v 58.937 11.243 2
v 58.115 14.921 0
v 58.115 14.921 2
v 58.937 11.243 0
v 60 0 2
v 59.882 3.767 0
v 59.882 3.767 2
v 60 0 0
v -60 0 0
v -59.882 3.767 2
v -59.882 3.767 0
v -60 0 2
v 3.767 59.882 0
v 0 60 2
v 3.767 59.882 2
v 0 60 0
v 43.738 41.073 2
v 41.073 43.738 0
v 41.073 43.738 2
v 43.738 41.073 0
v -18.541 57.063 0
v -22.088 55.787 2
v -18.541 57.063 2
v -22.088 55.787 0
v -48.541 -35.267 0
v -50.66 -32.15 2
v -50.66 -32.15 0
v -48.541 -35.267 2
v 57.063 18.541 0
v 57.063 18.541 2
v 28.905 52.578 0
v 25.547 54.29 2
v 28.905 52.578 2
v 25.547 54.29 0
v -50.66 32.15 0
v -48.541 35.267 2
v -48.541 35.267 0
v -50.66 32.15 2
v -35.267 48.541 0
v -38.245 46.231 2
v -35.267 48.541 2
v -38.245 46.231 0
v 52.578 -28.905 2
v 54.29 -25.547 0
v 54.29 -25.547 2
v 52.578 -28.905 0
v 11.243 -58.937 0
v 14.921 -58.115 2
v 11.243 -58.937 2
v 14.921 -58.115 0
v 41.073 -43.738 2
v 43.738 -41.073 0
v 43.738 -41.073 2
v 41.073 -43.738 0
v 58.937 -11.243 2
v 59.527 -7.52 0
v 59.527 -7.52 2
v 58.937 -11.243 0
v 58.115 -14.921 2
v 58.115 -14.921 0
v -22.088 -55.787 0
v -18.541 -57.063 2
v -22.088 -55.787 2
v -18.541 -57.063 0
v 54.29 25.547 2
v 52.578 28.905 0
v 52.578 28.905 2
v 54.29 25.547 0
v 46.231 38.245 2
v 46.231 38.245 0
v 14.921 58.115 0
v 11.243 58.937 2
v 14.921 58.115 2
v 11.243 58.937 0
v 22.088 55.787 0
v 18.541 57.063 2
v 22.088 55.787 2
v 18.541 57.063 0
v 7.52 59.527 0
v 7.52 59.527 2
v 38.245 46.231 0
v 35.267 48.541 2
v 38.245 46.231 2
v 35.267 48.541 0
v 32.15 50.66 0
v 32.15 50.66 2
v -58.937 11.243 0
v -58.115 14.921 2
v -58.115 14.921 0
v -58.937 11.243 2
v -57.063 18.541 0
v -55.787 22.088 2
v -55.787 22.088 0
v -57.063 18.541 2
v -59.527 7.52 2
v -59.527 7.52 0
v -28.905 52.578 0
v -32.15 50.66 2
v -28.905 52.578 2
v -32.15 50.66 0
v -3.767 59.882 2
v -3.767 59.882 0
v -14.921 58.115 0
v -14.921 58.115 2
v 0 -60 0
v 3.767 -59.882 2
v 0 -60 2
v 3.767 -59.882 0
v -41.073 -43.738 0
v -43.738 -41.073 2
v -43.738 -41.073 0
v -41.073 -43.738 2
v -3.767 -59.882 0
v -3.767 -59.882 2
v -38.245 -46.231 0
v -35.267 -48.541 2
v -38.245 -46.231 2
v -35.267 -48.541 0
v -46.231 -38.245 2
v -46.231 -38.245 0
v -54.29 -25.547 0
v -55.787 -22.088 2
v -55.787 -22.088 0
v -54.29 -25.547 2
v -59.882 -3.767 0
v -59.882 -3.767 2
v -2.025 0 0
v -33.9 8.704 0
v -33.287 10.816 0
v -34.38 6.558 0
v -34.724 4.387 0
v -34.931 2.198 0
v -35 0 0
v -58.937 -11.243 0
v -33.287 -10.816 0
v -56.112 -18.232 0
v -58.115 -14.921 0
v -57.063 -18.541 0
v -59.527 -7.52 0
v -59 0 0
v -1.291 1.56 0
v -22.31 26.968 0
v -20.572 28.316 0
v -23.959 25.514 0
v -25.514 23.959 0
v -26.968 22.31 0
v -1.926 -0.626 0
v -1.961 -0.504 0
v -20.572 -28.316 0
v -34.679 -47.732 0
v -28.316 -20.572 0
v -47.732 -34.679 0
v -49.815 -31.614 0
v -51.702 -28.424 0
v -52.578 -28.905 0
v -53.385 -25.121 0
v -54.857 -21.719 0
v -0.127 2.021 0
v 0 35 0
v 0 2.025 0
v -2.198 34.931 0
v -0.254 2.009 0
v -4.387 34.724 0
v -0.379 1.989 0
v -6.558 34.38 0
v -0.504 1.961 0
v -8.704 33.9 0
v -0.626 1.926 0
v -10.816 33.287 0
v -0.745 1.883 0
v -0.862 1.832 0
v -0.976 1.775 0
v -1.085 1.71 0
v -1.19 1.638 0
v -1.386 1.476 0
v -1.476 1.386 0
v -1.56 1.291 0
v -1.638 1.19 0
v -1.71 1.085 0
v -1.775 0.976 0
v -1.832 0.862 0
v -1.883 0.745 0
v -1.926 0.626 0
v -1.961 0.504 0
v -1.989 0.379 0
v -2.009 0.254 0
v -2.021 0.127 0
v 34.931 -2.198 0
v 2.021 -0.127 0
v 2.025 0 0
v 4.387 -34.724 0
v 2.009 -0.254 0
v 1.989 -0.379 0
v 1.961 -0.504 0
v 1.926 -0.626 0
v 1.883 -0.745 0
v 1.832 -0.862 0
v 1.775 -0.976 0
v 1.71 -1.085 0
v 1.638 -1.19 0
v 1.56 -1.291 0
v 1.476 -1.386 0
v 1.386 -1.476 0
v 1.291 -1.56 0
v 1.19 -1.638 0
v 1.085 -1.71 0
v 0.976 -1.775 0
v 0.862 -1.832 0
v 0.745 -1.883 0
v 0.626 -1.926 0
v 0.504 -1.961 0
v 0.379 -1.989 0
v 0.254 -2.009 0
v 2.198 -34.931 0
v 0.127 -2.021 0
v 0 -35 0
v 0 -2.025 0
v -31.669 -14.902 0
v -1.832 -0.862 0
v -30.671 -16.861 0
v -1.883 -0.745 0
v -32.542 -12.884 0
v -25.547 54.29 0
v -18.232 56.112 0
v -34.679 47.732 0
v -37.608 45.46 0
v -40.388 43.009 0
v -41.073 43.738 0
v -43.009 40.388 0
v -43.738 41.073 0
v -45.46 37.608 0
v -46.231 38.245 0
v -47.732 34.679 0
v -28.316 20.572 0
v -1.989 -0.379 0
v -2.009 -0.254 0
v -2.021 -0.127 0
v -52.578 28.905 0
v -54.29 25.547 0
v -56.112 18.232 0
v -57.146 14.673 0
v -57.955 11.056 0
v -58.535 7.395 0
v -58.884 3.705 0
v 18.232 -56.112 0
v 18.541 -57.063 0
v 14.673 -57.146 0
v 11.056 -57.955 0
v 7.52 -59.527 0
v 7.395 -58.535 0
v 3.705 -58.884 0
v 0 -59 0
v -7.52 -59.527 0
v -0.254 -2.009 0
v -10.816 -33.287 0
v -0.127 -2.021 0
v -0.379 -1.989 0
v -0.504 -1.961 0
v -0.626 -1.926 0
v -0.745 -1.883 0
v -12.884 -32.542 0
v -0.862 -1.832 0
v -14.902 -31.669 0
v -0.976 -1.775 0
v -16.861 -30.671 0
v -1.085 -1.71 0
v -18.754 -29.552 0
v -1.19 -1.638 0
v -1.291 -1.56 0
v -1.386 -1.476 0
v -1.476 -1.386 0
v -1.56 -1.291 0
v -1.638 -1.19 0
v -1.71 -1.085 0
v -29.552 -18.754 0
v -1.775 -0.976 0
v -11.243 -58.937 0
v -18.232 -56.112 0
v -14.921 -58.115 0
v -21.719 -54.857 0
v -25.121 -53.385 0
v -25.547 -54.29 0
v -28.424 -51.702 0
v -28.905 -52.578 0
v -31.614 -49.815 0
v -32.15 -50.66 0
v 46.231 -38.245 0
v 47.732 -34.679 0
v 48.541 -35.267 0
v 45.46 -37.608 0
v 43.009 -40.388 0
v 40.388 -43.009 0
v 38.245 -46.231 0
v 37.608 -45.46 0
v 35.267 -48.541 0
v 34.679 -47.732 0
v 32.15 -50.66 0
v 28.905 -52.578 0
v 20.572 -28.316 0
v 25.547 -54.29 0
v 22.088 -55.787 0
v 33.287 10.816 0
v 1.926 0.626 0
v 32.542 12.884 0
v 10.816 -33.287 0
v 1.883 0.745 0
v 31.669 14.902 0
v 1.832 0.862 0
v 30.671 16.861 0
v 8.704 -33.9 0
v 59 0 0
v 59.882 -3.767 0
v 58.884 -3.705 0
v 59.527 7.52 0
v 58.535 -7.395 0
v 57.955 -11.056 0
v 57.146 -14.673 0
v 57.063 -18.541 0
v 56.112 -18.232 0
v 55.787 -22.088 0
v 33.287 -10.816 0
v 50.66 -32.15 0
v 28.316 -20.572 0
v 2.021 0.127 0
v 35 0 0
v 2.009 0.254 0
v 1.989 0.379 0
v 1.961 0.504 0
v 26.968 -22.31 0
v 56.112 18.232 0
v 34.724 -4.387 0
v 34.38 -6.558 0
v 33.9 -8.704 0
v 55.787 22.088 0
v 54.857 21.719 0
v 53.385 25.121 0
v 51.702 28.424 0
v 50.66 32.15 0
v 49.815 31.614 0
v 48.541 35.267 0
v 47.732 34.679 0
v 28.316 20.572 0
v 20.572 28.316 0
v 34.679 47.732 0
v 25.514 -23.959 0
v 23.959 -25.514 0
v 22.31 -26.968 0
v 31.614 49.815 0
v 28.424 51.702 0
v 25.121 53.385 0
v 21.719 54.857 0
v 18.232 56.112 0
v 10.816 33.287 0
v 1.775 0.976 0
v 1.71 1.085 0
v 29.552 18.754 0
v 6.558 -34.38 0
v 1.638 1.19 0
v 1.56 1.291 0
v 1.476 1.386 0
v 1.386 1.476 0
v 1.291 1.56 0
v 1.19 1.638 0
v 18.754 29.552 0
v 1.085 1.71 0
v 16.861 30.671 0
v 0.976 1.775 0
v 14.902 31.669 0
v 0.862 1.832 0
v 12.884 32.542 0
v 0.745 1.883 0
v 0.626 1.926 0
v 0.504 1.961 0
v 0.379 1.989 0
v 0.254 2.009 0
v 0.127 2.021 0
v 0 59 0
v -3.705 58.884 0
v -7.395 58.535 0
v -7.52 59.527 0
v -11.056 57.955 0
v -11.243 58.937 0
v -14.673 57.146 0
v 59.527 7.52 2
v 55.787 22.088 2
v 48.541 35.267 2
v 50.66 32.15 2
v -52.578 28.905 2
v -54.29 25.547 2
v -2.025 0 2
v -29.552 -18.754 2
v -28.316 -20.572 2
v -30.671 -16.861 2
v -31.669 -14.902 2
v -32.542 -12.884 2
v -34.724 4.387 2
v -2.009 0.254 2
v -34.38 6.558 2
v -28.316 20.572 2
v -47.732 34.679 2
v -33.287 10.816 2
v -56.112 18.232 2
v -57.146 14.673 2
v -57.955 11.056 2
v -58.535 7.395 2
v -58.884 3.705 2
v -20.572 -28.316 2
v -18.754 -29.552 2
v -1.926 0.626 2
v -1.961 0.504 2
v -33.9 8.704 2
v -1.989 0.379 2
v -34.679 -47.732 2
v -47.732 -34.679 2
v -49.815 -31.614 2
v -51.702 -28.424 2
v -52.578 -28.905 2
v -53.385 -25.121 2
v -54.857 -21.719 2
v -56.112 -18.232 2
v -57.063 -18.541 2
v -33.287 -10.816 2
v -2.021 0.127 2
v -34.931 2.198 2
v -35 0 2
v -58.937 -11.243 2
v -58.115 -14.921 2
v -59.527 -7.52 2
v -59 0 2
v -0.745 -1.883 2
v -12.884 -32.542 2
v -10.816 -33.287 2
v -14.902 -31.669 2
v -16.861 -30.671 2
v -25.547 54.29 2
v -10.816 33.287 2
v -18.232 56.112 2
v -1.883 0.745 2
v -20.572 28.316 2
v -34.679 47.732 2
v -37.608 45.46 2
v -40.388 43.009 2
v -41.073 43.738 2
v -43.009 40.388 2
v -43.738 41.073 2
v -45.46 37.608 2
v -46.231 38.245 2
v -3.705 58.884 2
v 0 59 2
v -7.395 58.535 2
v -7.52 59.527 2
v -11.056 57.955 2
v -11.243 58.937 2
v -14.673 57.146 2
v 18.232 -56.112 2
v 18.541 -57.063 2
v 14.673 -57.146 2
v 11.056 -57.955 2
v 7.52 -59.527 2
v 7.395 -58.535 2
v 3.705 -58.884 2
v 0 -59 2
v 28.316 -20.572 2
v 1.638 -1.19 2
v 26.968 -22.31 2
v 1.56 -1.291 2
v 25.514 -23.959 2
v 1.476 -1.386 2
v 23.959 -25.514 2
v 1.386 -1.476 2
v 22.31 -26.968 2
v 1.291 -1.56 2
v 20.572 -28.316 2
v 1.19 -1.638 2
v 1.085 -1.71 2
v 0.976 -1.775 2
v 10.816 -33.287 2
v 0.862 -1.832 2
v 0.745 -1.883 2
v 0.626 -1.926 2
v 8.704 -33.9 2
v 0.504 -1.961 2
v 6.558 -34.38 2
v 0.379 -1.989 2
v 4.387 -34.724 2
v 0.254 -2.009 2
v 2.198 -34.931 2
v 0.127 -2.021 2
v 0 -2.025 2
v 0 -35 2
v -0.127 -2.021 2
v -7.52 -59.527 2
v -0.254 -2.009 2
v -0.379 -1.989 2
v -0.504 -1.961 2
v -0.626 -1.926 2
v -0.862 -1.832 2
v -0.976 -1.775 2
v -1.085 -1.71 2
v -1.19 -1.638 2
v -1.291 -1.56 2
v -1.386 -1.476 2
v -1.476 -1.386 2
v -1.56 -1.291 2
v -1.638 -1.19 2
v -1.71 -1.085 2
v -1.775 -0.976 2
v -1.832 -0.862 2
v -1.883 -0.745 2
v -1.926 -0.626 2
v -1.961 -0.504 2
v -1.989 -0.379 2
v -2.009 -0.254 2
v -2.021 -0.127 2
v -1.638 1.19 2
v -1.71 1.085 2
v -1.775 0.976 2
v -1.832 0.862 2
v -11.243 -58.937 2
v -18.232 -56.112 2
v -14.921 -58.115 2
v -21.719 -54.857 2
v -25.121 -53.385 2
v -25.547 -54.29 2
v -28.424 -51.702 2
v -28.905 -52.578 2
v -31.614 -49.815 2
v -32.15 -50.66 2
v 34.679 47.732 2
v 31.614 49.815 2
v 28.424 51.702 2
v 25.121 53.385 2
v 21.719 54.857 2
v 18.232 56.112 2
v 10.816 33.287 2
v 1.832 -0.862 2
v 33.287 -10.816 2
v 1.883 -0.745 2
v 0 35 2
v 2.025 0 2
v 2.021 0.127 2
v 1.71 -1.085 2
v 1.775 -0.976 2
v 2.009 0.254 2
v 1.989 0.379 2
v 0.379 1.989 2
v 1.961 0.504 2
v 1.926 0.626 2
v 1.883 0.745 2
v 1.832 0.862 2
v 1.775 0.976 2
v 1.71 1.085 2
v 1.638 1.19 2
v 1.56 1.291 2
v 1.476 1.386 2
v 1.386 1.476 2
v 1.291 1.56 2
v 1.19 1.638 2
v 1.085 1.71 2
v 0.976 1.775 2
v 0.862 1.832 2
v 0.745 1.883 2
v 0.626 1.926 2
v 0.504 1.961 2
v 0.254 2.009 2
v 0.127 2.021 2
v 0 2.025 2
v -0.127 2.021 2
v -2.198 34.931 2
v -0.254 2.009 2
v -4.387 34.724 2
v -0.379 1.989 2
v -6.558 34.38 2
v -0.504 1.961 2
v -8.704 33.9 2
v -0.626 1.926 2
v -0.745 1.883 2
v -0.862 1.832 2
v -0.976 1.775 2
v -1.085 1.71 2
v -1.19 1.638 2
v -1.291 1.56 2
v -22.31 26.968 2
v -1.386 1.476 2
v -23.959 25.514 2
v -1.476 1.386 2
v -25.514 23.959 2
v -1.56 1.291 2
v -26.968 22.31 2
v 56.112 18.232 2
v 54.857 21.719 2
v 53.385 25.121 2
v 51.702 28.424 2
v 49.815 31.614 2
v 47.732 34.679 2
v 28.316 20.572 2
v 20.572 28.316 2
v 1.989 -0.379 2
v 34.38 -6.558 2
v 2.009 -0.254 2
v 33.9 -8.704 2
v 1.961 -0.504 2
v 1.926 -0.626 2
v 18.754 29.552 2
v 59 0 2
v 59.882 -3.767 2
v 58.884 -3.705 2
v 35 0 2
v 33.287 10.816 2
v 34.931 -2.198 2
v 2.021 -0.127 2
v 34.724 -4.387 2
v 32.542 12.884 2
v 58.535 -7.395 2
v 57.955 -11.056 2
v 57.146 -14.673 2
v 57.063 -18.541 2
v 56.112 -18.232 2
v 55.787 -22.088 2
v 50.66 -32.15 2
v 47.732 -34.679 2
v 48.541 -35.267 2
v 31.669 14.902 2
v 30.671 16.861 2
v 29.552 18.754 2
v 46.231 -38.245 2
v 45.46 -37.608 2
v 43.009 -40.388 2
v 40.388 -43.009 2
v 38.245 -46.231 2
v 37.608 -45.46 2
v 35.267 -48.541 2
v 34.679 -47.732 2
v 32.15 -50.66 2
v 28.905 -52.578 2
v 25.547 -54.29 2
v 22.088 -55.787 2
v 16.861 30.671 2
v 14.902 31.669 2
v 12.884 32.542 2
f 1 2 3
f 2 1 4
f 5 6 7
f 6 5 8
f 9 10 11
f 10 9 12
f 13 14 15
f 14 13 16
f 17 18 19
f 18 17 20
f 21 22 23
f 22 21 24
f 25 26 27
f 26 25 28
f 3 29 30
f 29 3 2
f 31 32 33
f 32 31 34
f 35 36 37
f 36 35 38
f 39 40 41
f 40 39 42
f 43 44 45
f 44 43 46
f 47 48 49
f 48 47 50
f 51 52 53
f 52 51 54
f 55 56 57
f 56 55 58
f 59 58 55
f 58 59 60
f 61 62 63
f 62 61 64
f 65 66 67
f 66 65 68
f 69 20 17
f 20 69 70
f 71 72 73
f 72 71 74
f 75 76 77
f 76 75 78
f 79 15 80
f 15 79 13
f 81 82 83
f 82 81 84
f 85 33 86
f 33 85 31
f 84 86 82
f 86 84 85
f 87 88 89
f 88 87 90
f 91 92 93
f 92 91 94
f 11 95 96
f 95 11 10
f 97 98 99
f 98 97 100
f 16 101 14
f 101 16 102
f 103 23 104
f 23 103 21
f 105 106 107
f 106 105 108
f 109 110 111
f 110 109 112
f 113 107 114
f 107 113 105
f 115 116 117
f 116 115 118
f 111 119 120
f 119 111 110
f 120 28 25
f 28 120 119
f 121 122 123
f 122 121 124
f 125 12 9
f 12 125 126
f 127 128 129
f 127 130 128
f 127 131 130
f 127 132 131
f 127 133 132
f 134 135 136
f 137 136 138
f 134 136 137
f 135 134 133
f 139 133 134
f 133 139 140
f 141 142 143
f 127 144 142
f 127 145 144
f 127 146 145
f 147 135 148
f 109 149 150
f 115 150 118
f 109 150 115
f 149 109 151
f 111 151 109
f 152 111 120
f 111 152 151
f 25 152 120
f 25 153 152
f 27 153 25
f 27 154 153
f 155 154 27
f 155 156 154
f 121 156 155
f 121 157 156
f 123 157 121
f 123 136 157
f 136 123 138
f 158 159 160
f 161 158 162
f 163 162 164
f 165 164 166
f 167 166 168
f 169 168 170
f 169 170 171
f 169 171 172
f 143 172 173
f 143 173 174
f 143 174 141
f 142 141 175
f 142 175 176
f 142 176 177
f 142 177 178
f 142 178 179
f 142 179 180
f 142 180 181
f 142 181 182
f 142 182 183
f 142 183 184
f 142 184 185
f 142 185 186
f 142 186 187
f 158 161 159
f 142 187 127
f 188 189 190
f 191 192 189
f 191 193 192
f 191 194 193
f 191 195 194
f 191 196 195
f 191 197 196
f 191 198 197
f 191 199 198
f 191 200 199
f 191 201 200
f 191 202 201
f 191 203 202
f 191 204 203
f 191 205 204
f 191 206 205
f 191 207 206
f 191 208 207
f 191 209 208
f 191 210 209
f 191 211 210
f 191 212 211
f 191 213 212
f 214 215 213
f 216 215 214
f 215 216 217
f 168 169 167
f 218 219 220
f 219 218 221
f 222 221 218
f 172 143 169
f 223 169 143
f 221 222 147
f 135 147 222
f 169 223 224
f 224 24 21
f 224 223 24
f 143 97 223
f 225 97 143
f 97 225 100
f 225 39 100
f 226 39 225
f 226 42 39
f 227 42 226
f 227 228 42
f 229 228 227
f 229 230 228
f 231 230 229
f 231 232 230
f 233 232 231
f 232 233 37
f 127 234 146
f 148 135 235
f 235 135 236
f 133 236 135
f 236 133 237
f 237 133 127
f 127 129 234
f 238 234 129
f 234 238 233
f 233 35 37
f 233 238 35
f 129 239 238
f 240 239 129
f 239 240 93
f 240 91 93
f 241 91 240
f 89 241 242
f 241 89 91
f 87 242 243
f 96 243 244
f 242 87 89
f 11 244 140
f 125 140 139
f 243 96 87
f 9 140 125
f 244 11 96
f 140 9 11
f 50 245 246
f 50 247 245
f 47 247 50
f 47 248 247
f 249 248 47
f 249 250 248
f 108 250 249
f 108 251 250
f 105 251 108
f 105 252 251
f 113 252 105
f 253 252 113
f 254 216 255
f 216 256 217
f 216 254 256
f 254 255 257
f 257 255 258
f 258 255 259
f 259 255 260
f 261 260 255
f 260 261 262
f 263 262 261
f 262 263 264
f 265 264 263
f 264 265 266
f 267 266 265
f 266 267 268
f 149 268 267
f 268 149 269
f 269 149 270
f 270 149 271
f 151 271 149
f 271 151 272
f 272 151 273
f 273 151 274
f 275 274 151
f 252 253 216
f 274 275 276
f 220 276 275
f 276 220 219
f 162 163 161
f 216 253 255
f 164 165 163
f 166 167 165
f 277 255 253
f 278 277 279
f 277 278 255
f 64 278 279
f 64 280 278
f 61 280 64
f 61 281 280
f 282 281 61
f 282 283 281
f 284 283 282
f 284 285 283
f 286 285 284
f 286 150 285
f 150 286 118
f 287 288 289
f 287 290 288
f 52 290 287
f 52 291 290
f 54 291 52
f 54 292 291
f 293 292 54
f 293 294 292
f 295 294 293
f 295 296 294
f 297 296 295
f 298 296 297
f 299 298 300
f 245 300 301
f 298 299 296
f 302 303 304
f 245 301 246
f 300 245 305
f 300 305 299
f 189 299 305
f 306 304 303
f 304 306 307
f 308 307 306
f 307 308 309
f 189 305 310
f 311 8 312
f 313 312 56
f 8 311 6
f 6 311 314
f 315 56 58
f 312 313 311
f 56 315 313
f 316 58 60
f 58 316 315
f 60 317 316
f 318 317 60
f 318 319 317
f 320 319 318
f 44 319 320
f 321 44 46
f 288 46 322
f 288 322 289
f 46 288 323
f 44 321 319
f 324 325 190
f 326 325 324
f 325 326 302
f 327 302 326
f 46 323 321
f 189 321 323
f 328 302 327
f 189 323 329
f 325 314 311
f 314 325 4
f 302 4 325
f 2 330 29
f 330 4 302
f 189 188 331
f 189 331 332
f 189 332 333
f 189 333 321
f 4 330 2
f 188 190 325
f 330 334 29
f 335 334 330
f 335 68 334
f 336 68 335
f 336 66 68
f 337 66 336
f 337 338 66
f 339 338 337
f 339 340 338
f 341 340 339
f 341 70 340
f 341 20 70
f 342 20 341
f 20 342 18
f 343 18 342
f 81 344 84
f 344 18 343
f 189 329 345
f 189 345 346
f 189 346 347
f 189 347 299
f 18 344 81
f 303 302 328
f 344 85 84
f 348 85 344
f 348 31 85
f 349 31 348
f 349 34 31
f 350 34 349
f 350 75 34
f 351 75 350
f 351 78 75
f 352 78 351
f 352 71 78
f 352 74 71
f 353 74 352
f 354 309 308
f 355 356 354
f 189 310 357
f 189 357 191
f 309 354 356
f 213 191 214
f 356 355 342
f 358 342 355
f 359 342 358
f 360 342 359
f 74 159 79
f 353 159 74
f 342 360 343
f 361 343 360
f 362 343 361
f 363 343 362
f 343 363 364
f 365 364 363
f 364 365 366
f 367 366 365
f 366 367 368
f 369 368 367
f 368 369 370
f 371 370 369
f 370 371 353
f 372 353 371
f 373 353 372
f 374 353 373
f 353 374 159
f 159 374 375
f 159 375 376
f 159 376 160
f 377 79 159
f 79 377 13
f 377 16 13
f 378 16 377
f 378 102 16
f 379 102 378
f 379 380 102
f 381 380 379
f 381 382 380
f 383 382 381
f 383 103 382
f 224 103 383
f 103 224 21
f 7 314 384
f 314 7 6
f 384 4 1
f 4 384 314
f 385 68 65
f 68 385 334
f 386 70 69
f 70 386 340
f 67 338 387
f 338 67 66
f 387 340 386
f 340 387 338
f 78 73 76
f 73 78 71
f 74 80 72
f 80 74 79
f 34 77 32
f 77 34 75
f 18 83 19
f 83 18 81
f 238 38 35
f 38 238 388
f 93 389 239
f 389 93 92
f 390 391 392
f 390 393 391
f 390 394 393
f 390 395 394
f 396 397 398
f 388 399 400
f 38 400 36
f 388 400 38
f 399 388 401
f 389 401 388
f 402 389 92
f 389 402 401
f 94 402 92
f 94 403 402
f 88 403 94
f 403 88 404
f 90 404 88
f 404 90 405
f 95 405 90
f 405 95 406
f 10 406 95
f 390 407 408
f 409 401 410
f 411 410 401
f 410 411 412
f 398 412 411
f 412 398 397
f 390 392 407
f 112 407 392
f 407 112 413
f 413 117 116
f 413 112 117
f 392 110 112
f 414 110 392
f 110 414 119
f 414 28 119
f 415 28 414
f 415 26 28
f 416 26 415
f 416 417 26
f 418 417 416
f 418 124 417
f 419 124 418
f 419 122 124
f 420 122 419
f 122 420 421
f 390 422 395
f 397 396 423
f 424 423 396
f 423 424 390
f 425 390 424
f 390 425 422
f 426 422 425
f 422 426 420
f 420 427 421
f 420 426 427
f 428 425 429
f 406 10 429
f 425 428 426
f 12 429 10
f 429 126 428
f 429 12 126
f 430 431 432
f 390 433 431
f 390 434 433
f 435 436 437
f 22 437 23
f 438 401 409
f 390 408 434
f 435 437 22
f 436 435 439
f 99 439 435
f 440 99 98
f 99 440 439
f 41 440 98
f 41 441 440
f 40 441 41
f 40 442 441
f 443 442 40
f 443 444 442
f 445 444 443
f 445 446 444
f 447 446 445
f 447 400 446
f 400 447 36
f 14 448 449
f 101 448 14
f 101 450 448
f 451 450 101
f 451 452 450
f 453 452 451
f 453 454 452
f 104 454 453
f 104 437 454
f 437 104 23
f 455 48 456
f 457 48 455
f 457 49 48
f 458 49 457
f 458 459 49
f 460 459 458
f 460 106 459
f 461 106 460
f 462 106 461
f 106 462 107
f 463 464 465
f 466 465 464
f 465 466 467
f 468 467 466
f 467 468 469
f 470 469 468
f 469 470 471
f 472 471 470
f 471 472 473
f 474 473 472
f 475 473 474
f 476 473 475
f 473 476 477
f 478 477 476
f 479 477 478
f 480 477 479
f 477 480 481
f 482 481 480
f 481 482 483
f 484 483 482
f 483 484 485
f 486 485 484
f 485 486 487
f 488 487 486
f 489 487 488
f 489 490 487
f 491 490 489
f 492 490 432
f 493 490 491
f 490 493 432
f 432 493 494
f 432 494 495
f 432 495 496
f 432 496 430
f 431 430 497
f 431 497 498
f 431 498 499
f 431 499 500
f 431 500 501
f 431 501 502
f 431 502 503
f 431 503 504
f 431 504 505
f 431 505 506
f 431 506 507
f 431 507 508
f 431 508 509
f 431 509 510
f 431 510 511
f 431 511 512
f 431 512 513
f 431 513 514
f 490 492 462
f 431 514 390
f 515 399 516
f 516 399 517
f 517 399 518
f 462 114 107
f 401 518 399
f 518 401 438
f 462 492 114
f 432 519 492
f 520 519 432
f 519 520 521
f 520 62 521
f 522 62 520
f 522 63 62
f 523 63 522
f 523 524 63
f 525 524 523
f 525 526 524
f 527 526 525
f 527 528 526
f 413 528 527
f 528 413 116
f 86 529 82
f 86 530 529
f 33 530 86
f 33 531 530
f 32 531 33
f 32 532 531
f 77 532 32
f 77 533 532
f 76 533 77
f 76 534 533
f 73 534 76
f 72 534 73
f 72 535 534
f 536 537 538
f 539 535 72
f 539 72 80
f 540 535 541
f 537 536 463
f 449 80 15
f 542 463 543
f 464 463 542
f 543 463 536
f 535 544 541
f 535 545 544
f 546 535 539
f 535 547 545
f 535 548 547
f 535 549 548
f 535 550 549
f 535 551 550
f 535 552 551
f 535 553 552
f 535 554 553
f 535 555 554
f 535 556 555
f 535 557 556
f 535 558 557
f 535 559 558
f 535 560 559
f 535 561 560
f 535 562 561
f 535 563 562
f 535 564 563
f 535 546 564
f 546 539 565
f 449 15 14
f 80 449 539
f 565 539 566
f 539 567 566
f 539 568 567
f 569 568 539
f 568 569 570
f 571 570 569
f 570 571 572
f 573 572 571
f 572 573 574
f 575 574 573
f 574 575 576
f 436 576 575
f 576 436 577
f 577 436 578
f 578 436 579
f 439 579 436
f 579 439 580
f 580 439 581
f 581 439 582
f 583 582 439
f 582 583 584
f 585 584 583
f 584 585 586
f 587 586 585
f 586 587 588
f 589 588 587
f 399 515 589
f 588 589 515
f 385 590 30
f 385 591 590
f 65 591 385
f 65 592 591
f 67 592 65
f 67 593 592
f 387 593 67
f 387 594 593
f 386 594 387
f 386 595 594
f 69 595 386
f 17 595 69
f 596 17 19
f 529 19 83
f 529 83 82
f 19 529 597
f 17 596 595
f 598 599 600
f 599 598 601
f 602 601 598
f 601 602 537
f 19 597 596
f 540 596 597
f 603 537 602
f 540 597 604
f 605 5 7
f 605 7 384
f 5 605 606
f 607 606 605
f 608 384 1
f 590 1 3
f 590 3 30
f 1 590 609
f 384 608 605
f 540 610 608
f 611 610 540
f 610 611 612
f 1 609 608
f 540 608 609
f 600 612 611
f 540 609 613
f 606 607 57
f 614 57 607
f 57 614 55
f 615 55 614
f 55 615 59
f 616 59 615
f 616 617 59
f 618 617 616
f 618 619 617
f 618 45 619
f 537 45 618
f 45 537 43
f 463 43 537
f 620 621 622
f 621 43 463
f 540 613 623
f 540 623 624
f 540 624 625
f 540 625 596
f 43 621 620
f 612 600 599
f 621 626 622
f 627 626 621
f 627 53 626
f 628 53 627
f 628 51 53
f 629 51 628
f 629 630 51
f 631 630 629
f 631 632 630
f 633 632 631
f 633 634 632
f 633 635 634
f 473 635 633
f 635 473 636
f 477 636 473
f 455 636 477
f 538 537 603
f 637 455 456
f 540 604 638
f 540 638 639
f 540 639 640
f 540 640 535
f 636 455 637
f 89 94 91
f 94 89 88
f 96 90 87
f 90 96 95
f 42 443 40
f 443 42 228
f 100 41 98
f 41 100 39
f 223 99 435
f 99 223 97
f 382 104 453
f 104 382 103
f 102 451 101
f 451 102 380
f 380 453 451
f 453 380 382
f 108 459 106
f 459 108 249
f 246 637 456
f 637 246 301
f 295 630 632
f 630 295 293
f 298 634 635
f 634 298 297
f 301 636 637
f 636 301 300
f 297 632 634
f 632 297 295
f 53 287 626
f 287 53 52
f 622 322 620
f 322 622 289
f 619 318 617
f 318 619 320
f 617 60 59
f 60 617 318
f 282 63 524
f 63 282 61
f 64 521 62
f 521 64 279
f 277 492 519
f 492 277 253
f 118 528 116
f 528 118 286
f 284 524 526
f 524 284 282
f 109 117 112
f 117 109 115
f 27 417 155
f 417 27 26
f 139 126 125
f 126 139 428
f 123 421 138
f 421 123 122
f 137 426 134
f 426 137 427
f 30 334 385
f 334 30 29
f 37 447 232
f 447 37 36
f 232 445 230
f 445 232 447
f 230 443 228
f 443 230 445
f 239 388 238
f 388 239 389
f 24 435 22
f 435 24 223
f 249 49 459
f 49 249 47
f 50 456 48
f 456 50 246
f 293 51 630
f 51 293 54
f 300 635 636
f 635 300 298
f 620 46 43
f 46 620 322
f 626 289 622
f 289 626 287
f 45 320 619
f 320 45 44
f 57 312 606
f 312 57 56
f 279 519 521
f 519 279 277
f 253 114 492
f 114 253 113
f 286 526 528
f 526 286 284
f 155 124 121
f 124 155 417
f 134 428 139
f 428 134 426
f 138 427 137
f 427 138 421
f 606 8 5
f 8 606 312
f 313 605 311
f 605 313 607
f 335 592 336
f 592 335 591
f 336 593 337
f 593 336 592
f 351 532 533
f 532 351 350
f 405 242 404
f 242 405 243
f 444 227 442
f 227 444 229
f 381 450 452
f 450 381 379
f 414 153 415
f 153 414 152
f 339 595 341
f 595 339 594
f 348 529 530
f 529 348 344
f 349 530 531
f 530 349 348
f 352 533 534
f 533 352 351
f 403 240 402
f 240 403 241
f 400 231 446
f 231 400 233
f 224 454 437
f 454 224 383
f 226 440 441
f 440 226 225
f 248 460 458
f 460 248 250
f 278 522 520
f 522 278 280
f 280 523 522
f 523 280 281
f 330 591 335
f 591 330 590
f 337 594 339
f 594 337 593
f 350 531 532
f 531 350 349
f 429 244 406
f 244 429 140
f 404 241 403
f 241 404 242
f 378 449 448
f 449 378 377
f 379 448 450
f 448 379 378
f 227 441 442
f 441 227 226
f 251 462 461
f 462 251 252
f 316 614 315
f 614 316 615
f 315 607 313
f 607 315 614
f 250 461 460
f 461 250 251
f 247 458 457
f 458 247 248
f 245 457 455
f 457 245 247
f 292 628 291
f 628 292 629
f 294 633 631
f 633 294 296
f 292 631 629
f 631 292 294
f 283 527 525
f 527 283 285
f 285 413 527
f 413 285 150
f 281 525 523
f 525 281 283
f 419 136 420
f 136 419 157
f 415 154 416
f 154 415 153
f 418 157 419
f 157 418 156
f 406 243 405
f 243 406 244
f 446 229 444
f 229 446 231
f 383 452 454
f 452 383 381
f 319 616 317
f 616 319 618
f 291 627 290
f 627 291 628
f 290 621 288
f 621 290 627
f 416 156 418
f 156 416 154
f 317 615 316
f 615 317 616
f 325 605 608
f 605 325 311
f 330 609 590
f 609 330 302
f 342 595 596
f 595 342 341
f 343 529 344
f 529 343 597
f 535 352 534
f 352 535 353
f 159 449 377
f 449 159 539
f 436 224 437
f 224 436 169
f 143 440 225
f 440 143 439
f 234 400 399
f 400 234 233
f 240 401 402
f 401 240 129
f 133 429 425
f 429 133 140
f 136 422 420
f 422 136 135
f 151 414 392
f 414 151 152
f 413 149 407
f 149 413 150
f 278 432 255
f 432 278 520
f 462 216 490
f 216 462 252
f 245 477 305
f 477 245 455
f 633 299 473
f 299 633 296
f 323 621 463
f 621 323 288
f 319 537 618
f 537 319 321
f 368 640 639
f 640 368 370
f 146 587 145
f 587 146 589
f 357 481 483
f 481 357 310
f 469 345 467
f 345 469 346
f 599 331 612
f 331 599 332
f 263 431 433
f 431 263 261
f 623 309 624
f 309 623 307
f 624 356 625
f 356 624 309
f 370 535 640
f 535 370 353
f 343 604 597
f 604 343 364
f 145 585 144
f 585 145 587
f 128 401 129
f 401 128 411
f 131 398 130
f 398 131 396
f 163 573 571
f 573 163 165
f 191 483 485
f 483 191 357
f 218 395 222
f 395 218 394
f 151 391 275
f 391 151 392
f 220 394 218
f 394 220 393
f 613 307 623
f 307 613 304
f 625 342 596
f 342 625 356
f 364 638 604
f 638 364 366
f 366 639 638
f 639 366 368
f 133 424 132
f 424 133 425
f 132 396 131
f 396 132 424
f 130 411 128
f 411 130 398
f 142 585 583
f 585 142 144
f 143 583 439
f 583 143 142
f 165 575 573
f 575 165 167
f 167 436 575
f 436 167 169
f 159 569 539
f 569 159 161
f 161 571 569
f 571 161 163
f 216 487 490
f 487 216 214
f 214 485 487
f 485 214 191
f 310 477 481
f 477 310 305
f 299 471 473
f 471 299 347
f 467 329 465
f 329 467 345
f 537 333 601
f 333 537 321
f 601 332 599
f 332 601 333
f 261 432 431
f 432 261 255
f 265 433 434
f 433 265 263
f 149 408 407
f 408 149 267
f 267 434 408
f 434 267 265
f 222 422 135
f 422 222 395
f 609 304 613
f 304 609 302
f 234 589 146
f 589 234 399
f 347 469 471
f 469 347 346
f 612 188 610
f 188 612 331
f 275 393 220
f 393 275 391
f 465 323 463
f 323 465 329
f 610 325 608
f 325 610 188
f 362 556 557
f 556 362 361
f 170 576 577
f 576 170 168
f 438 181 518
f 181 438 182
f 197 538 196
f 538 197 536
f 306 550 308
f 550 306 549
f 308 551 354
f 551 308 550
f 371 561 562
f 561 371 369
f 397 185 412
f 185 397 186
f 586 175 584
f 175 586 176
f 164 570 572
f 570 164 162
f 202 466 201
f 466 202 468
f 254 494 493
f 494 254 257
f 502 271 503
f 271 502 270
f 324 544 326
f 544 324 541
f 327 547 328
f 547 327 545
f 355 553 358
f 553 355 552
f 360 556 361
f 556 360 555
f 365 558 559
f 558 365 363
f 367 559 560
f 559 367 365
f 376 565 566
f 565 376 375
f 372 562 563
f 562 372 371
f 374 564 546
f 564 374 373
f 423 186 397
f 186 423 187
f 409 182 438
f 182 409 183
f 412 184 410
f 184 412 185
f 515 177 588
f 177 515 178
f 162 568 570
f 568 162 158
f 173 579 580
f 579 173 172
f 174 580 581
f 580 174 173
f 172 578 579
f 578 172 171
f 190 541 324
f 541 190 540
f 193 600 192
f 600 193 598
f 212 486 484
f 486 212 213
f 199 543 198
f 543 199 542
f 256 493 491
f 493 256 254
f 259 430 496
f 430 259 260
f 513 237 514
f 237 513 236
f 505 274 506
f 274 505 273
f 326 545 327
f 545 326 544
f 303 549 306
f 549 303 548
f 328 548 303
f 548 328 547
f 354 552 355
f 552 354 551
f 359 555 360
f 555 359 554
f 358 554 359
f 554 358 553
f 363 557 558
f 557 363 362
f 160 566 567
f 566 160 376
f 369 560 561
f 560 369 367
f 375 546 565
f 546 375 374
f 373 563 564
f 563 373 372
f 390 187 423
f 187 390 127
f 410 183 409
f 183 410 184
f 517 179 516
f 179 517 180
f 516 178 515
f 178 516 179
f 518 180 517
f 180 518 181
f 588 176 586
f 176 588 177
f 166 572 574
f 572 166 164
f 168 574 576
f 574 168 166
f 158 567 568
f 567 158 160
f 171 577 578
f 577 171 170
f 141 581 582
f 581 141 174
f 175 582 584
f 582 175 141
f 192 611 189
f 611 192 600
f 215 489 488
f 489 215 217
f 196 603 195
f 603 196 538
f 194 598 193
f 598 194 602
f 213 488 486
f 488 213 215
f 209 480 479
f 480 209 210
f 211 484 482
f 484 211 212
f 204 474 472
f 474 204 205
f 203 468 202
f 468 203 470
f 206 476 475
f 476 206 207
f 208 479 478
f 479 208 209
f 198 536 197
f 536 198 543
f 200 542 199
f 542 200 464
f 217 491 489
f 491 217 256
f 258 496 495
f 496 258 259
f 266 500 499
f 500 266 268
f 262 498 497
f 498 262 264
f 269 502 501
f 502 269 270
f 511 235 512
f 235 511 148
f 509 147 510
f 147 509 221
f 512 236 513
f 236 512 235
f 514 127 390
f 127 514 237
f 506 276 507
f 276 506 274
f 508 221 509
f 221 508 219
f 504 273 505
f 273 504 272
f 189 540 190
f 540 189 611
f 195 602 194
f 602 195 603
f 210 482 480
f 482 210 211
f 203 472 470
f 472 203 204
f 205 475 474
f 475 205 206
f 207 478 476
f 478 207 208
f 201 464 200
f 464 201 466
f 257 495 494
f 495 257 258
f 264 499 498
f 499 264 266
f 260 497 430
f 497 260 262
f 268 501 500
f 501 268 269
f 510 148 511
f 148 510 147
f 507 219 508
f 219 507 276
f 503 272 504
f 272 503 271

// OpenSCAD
// file: ../library_deh/mag_mount.scad
/* mag_mount.scad

 * ****** Stud magnets ******
16 mm 
http://www.kjmagnetics.com/proddetail.asp?prod=MM-C-16
    Dimensions:
        D=16mm (0.63")
        M=4mm (0.16") (M4 Coarse Male threaded stud)
        H=13mm (0.51")
        h=5mm (0.20")
    Material: NdFeB, Grade N38
    Plating/Coating: Ni-Cu-Ni (Nickel)
    Magnetization Direction: Axial (Poles on Flat Ends)
    Weight: 0.26 oz. (7.37 g)
    Pull Force: 12.1 lbs
    Surface Field: N/A
    Brmax: 12,600 Gauss
    BHmax: 38 MGOe
   $2.49
*/
// Measured dimensions
 mag_thick = 4.82;	    // Magnet thickness (base to shell top)
 mag_shell_dia = 16.0;	    // Magnet shell OD
 mag_shell_flat_dia = 11;   // Dia of flat of magent
 mag_stud_dia = 2.8;        // Dia of mounting magnet studs (4-40)
 mag_stud_len = 8.0;        // Height of stud from magnet back
 mag_washer_thick = 1.1;    // Thickness of washer
 mag_nut_thick = 2.4;       // Stud nut (M3) thickness
 mag_nut_hex_flat = 5.41;   // Nut across flats
 mag_nut_hex_peak = 6.20;   // Nut across peaks (also dia of nut)
 mag_washer_dia = 7.1; // 9.5;      // Diameter of washer for magnet stud
 mag_washer_dia_extra = 2;  // Washer slop

/*
http://www.kjmagnetics.com/proddetail.asp?prod=MM-C-20


    Dimensions:
        D=20mm (0.79")
        M=4mm (0.16") (M4 Coarse Male threaded stud)
        H=15mm (0.59")
        h=7mm (0.28")
    Material: NdFeB, Grade N38
    Plating/Coating: Ni-Cu-Ni (Nickel)
    Magnetization Direction: Axial (Poles on Flat Ends)
    Weight: 0.53 oz. (15.0 g)
    Pull Force: 28.7 lbs
    Surface Field: N/A
    Brmax: 12,600 Gauss
    BHmax: 38 MGOe

  $3.14
*/
 mag20_thick = 7.11;	    // Magnet thickness (base to shell top)
 mag20_shell_dia = 20.2;    // Magnet shell OD
 mag20_stud_dia = 3.75;     // Dia of mounting magnet stud at base
 mag20_stud_len = 7.75;       // Height of stud from magnet back
 mag20_washer_thick = 0.85;    // Thickness of washer
 mag20_nut_thick = 2.93;       // Nut for stud thickness
 mag20_washer_dia = 8.68;      // Diameter of washer for magnet stud
 mag20_washer_dia_extra = 2;  // Washer slop

/*
http://www.kjmagnetics.com/proddetail.asp?prod=MM-C-25

    Dimensions:
        D=25mm (0.98")
        M=5mm (0.20") (M5 Coarse Male threaded stud)
        H=17mm (0.67")
        h=8mm (0.32")
    Material: NdFeB, Grade N38
    Plating/Coating: Ni-Cu-Ni (Nickel)
    Magnetization Direction: Axial (Poles on Flat Ends)
    Weight: 0.92 oz. (26.1 g)
    Pull Force: 48.5 lbs
    Surface Field: N/A
    Brmax: 12,600 Gauss
    BHmax: 38 MGOe
  $4.20
*/
// $$$$$ INCOMPLETE $$$$$$
 mag25_thick = 4.82;	    // Magnet thickness (base to shell top)
 mag25_shell_dia = 16.0;	    // Magnet shell OD
 mag25_stud_dia = 2.8;        // Dia of mounting magnet studs (4-40)
 mag25_stud_len = 7.95;       // Height of stud from magnet back
 mag25_washer_thick = 1.1;    // Thickness of washer
 mag25_nut_thick = 2.4;       // Nut for stud thickness
 mag25_washer_dia = 9.5;      // Diameter of washer for magnet stud
 mag25_washer_dia_extra = 2;  // Washer slop

// Cylindrical magnets
mag_cyl_dia = 6.5; 
mag_cyl_ht = 5.05;
// file: ../library_deh/deh_shapes.scad
/* **** deh_shapes.scad *****
   * Library of useful shapes
   * 20170512
*/


/*  ***** tubedeh *****
d1 = outside diameter
d2 = inside diameter
ht = height
reference is center of tube, bottom
*/
module tubedeh(d1,d2,ht)
{
   difference()
   {
     cylinder(d = d1, h = ht, center = false);
     cylinder(d = d2, h = ht + .001, center = false);
   }
}
/* ***** rounded_bar *****
 * rectangular bar with rounded end
bar with one end rounded
rounded_bar(d, l, h)
d = diameter of rounded end, and width of bar
l = length of bar from center of rounded end to end
h = thickness (height) of bar
reference is center of rounded end, bottom
*/
module rounded_bar(d, l, h)
{
    // Rounded end
    cylinder(d = d, h = h, center = false);
    // Bar
    translate([0, -d/2, 0])
       cube([l, d, h],false);
}
/* ***** eyebar *****
 * rounded bar with hole in rounded end
 * module eye_bar(d1, d2, len, ht)
d1 = outside diameter of rounded end, and width of bar
d2 = diameter of hole in end of bar
*/
module eye_bar(d1, d2, len, ht)
{
   difference()
   {   
      rounded_bar(d1,len,ht);
      cylinder(d = d2, h = ht + .001, center = false);
   }
}
/* ***** rounded_rectangle ******
rounded_rectangle(l,w,h,rad);
l = length (x direction)
w = width (y direction)
h = thickness (z direction)
rad = radius of corners
reference = center of rectangle x,y, bottom
*/
module rounded_rectangle(l,w,h,rad)
{
  translate([-(l-rad)/2,-(w-rad)/2,0])
  {
    // Four rounded edges
    translate([0,0,0])
      rounded_bar(rad*2,l-rad,h);
    translate([l-rad,0,0])
      rotate([0,0,90])
      rounded_bar(rad*2,w-rad,h);
    translate([l-rad,w-rad,0])
      rotate([0,0,180])
      rounded_bar(rad*2,l-rad,h);
    translate([0,w-rad,0])
      rotate([0,0,-90])
      rounded_bar(rad*2,w-rad,h);
    // Fill in center
    translate([0,0,0])
      cube([l-rad + .01,w-rad + .01,h],false);
  }
}

/* ***** rounded rim *****
module rounded_rim(l,w,h,rad,tk);
l = length (inside, x direction)
w = width (inside, y direction)
h = thickness (z direction)
rad = radius of corners
tk = thickness of rim wall
*/
module rounded_rim(l,w,h,rad,tk)
{
  difference()
  {
    rounded_rectangle(l+2*tk,w+2*tk,h,rad);
    rounded_rectangle(l, w, h, rad);
  }
}

/* ***** wedge *****
l = length
w = width
h = height/thickness
*/
 module wedge(l, w, h)
 {
   polyhedron(
      points=[[0,0,0], [l,0,0], [l,w,0], [0,w,0], [0,w,h], [l,w,h]],
       faces=[[0,1,2,3],[5,4,3,2],[0,4,5,1],[0,3,4],[5,2,1]] );
 }
/* ***** rounded_triangle *****
 * l1 = side 1
 * l2 = side 2
 * l3 = side 3
 * h  = height/thickness
 * rad = radius of rounded corners
 */
module rounded_triangle(l1,l2,l3,h,rad)
{
  // Compute rotation angles
  al3 = acos((l1*l1 + l2*l2 - l3*l3)/(2 * l1 * l2));
  al1 = acos((l2*l2 + l3*l3 - l1*l1)/(2 * l2 * l3));
  al2 = acos((l3*l3 + l1*l1 - l2*l2)/(2 * l3 * l1));
  // Setup bars for edges
  translate([0,0,0])
    rotate([0,0,0])
      rounded_bar(rad,l3,h);
  translate([l3,0,0])
    rotate([0,0,180-al2])
      rounded_bar(rad,l1,h);
  rotate([0,0,al1])
    translate([l2,0,0])
      rotate([0,0,180])
        rounded_bar(rad,l2,h);
  // Fill in center
    triangle(l1,l2,l3,h);
}
/* ***** triangle *****
 * l1 = side 1
 * l2 = side 2
 * l3 = side 3
 * h  = height/thickness
 */
module triangle(l1,l2,l3,h)
{
  // Compute rotation angle
  al1 = acos((l2*l2 + l3*l3 - l1*l1)/(2 * l2 * l3));
  
  linear_extrude(height = h)
  polygon(points = [[0,0],[l3,0],[l2*cos(al1),l2*sin(al1)]]);
}
/* ***** chamfered hole *****
 * Punch hole with chamfer on one end
 * d1 = main hole diameter
 * d2 = hole diameter at chamfered end
 * ht1 = height of whole hole
 * ht2 = depth of  chamfer
*/
module chamfered_hole(d1,d2,ht1,ht2)
{
   rotate_extrude(convexity = 10)
     polygon(points = [[0,0],[d1/2,0],[d1/2,ht1-ht2],[d2/2,ht1],[0,ht1]]);

}

/* ***** fillet *****
 * r = radius of fillet
 * l = length of fillet
 fillet (r,l);
*/
module fillet(r,l)
{
   difference()
   {
     union()
     {
       cube([2*r,2*r,l]);
     }
     union()
     {
       translate ([r,r,0])
           cylinder(d = 2*r + 0.1, h = l, center = false);
       translate([r,0,0])
           cube([r,2*r,l],center = false);
       translate([0,r,0])
           cube([2*r,r,l],center = false);
     }
   }
}
/* ***** circular chamfer *****
 * d = outer diameter
 * rad = chamfer radius
 * circular_chamfer(d, rad);
*/
module circular_chamfer(d, rad)
{
  ofs = (d/2 - rad);
  rotate_extrude()
  translate([ofs,0])
   difference()
   {
     union()
     {
       square(size = [rad, rad]);
     }
     union()
     {
       translate ([0,rad ])
           circle(d = 2*rad + 0.1);
     }
   }
}
module circular_inner_chamfer(d, rad)
{
  circular_chamfer(d, rad);
} 

/* ***** circular chamfer *****
 * d = inner diameter
 * rad = chamfer radius
 * circular_chamfer(d, rad);
*/
module circular_outer_chamfer(d, rad)
{
  ofs = (d/2 - rad);
  rotate_extrude()
  translate([ofs,0])
   difference()
   {
     union()
     {
       square(size = [rad, rad]);
     }
     union()
     {
       translate ([rad,rad ])
           circle(d = 2*rad + 0.1);
     }
   }
}
// main file
/* codewheel_3.scad
 * Codewheel for horizontal mounted encoders
 * Date: 20170421
 * codewheel_3
 * #### Be sure to use latest openscad! ####
 * #### or rotate_extrude will not work ####
 */

include <../library_deh/deh_shapes.scad>
include <../library_deh/mag_mount.scad>

$fn = 100;

rim_dia = 120;
rim_wid = 1;
rim_thick = 2.0;

hub_thick = 2;	//
hub_hole_dia = mag20_stud_dia + 0.3; // Mounting hole
hub_disc_dia = 70;

hub_washer_dia = mag20_washer_dia + 1.0;

seg_dia_inner = hub_disc_dia;
seg_dia_outer = rim_dia;
seg_thick = rim_thick;	// Thickness of segments

nsegs = 10;	// Number of segments


module segment()
{
   rotate_extrude(angle = 180/nsegs)
   {
     translate([seg_dia_inner/2,0,0])
       square([(seg_dia_outer - seg_dia_inner)/2,seg_thick], center = false);
   }
}
           
module segments()
{
   step = 360/nsegs;

   for (i = [0 : step : 360])
   {
     rotate([0,0,i])
       segment();    
   }
}

module total()
{
   // Hub disc
   tubedeh(hub_disc_dia,hub_hole_dia,hub_thick);

   // Encoder segments
   segments();

   // Rim
   tubedeh(rim_dia, (rim_dia - (rim_wid * 2)), rim_thick);
}


total();
